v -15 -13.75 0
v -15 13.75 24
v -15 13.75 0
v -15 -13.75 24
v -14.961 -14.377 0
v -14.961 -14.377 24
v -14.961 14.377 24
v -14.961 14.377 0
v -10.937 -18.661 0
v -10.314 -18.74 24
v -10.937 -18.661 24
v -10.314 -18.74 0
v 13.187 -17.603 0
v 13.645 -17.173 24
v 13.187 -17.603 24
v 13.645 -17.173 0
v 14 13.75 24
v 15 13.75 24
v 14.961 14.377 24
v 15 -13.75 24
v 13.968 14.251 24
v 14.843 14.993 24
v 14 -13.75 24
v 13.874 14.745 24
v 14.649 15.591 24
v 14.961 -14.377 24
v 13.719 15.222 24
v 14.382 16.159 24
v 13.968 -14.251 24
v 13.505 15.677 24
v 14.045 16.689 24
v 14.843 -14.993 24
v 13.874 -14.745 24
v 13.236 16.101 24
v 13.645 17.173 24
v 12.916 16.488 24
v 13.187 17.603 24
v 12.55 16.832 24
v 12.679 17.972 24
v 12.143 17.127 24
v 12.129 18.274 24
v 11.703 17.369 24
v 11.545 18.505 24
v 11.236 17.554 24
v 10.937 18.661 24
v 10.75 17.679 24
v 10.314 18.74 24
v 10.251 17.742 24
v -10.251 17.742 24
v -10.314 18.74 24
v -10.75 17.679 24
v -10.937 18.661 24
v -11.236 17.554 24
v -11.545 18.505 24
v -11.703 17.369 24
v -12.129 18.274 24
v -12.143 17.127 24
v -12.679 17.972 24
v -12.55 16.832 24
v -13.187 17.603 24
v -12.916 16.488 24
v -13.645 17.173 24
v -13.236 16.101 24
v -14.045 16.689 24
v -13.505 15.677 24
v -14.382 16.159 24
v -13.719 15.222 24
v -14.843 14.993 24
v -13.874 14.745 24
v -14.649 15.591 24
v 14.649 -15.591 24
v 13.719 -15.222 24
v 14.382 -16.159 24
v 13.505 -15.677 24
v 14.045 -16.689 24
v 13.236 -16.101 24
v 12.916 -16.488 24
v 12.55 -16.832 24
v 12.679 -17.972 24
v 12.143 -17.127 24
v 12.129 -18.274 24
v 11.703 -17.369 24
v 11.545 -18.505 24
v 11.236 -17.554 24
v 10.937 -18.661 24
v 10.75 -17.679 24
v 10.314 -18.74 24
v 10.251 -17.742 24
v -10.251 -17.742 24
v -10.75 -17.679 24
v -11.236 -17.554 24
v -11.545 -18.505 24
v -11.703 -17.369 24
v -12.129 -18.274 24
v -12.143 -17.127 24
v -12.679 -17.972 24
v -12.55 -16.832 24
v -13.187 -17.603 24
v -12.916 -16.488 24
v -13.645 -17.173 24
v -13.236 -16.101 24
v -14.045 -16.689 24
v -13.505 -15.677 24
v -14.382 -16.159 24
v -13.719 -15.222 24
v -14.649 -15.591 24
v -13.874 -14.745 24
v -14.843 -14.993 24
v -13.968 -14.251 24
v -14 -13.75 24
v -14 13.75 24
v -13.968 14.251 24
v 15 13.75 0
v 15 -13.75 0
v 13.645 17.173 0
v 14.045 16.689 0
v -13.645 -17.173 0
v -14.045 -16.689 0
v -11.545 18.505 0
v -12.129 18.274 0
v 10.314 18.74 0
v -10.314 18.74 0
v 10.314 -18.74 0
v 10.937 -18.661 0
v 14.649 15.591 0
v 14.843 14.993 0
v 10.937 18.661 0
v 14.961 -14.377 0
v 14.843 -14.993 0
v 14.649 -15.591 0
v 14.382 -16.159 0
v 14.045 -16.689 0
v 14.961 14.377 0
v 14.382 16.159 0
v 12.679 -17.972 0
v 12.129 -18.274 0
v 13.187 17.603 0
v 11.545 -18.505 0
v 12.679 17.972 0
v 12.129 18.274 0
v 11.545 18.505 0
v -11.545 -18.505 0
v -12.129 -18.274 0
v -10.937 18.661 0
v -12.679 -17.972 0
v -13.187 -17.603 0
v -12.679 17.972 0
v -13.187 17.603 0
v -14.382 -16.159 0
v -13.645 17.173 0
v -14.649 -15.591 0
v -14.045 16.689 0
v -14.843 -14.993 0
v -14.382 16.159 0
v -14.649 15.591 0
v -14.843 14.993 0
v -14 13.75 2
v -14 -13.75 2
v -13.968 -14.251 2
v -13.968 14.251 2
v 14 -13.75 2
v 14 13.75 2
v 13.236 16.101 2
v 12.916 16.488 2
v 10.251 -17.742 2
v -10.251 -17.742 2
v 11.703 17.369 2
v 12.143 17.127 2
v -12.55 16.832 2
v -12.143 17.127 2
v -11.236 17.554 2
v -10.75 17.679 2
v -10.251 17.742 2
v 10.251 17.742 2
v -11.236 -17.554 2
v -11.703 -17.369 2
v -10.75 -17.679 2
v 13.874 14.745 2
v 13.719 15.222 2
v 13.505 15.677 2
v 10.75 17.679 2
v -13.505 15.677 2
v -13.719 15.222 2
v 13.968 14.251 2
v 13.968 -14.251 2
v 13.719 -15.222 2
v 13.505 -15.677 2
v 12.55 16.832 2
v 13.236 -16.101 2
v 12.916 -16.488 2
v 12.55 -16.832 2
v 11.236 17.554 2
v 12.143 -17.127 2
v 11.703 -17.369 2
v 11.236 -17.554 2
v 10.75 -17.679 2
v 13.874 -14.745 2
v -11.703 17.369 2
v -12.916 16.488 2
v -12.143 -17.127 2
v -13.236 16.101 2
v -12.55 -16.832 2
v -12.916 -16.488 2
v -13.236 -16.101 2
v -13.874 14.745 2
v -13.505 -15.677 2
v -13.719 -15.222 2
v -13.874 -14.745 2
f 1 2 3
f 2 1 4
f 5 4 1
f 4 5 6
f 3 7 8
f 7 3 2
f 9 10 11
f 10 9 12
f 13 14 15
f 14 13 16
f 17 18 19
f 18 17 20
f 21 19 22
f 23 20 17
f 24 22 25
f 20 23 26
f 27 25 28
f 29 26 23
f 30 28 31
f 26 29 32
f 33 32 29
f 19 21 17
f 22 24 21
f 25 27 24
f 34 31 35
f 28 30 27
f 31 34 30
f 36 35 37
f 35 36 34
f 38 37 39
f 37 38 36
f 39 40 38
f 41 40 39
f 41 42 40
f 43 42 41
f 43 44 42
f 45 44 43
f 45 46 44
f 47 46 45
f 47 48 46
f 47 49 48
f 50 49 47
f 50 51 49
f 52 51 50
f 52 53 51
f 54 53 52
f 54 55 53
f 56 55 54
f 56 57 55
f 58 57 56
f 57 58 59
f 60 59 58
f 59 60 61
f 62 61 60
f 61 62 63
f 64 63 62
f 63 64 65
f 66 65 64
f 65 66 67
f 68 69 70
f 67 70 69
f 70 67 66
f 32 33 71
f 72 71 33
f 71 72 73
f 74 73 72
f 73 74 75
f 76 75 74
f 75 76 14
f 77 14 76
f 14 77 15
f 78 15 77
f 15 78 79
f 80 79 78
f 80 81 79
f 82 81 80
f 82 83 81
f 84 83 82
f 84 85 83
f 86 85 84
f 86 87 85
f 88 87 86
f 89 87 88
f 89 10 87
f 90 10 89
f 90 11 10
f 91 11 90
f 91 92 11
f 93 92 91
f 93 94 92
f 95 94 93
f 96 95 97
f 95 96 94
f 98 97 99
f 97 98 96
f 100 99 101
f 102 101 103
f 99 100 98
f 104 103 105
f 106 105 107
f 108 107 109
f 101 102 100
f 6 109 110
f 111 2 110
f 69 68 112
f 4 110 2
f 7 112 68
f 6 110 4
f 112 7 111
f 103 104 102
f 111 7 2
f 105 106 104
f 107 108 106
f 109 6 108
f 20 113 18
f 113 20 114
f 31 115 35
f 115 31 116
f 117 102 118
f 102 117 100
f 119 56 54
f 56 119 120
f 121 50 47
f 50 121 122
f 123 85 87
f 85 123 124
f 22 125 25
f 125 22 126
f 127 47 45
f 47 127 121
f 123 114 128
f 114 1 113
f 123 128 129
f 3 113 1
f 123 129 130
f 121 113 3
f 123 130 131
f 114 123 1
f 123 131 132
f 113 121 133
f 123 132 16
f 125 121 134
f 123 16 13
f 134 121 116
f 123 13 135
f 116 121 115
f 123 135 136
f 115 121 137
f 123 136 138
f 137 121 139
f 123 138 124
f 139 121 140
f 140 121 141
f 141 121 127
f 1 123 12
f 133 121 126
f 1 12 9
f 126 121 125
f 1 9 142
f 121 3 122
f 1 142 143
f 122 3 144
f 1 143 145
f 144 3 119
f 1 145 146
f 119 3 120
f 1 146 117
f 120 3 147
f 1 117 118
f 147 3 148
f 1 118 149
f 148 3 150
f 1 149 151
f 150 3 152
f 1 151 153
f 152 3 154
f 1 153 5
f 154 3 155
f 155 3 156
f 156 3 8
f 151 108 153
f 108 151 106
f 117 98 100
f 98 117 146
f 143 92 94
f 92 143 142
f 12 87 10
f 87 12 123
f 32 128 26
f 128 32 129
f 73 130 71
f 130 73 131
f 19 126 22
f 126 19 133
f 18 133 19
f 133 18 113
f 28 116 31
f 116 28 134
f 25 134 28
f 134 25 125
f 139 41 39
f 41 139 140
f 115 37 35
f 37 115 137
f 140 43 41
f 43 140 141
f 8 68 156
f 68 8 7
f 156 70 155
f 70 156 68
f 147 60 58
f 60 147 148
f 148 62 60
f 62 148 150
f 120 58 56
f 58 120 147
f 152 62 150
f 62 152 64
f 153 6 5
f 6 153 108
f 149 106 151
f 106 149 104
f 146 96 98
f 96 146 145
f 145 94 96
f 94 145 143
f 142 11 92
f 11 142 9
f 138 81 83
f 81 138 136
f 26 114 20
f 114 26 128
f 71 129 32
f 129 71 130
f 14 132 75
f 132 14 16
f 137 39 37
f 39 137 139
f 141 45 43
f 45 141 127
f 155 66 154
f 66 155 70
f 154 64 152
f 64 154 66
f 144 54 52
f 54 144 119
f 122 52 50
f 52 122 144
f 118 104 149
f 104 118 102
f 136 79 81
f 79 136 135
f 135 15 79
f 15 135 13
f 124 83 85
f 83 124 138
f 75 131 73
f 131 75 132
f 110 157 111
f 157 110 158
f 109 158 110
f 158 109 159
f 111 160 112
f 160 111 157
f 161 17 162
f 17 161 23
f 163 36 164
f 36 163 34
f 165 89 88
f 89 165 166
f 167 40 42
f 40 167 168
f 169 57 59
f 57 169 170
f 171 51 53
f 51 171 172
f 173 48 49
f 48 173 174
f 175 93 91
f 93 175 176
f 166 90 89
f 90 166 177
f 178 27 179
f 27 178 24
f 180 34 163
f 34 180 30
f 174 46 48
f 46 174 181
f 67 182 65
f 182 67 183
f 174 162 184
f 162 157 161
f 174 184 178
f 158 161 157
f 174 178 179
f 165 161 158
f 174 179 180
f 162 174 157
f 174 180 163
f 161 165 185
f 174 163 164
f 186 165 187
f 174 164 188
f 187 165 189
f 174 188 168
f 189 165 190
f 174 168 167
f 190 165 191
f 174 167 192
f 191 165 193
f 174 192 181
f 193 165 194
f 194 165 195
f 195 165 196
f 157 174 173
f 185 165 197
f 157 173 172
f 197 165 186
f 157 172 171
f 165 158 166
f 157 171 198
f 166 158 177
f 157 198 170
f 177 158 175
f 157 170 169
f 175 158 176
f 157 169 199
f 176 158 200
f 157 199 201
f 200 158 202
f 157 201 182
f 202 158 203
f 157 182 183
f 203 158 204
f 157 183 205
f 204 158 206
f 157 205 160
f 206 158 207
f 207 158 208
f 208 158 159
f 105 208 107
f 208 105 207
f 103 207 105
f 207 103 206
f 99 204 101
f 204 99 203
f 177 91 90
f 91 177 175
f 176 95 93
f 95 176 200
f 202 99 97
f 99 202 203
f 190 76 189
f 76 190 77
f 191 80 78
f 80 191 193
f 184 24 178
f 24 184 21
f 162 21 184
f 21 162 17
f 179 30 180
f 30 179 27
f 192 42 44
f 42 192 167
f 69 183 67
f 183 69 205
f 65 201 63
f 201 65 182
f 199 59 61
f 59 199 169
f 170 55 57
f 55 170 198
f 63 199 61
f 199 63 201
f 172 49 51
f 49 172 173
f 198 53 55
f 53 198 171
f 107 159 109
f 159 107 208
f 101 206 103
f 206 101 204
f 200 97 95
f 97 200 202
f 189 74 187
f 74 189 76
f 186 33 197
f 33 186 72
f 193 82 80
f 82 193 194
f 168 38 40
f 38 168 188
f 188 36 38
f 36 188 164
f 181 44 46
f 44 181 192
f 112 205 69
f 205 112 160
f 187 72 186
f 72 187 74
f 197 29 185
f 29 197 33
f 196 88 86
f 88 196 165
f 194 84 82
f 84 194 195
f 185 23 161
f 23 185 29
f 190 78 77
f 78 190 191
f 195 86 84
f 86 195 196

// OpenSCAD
$fn = 50;


difference() {
	union() {
		hull() {
			translate(v = [-10.0000000000, 13.7500000000, 0]) {
				cylinder(h = 24, r = 5);
			}
			translate(v = [10.0000000000, 13.7500000000, 0]) {
				cylinder(h = 24, r = 5);
			}
			translate(v = [-10.0000000000, -13.7500000000, 0]) {
				cylinder(h = 24, r = 5);
			}
			translate(v = [10.0000000000, -13.7500000000, 0]) {
				cylinder(h = 24, r = 5);
			}
		}
	}
	union() {
		translate(v = [0, 0, 2]) {
			#hull() {
				translate(v = [-10.0000000000, 13.7500000000, 0]) {
					cylinder(h = 22, r = 4);
				}
				translate(v = [10.0000000000, 13.7500000000, 0]) {
					cylinder(h = 22, r = 4);
				}
				translate(v = [-10.0000000000, -13.7500000000, 0]) {
					cylinder(h = 22, r = 4);
				}
				translate(v = [10.0000000000, -13.7500000000, 0]) {
					cylinder(h = 22, r = 4);
				}
			}
		}
	}
}
